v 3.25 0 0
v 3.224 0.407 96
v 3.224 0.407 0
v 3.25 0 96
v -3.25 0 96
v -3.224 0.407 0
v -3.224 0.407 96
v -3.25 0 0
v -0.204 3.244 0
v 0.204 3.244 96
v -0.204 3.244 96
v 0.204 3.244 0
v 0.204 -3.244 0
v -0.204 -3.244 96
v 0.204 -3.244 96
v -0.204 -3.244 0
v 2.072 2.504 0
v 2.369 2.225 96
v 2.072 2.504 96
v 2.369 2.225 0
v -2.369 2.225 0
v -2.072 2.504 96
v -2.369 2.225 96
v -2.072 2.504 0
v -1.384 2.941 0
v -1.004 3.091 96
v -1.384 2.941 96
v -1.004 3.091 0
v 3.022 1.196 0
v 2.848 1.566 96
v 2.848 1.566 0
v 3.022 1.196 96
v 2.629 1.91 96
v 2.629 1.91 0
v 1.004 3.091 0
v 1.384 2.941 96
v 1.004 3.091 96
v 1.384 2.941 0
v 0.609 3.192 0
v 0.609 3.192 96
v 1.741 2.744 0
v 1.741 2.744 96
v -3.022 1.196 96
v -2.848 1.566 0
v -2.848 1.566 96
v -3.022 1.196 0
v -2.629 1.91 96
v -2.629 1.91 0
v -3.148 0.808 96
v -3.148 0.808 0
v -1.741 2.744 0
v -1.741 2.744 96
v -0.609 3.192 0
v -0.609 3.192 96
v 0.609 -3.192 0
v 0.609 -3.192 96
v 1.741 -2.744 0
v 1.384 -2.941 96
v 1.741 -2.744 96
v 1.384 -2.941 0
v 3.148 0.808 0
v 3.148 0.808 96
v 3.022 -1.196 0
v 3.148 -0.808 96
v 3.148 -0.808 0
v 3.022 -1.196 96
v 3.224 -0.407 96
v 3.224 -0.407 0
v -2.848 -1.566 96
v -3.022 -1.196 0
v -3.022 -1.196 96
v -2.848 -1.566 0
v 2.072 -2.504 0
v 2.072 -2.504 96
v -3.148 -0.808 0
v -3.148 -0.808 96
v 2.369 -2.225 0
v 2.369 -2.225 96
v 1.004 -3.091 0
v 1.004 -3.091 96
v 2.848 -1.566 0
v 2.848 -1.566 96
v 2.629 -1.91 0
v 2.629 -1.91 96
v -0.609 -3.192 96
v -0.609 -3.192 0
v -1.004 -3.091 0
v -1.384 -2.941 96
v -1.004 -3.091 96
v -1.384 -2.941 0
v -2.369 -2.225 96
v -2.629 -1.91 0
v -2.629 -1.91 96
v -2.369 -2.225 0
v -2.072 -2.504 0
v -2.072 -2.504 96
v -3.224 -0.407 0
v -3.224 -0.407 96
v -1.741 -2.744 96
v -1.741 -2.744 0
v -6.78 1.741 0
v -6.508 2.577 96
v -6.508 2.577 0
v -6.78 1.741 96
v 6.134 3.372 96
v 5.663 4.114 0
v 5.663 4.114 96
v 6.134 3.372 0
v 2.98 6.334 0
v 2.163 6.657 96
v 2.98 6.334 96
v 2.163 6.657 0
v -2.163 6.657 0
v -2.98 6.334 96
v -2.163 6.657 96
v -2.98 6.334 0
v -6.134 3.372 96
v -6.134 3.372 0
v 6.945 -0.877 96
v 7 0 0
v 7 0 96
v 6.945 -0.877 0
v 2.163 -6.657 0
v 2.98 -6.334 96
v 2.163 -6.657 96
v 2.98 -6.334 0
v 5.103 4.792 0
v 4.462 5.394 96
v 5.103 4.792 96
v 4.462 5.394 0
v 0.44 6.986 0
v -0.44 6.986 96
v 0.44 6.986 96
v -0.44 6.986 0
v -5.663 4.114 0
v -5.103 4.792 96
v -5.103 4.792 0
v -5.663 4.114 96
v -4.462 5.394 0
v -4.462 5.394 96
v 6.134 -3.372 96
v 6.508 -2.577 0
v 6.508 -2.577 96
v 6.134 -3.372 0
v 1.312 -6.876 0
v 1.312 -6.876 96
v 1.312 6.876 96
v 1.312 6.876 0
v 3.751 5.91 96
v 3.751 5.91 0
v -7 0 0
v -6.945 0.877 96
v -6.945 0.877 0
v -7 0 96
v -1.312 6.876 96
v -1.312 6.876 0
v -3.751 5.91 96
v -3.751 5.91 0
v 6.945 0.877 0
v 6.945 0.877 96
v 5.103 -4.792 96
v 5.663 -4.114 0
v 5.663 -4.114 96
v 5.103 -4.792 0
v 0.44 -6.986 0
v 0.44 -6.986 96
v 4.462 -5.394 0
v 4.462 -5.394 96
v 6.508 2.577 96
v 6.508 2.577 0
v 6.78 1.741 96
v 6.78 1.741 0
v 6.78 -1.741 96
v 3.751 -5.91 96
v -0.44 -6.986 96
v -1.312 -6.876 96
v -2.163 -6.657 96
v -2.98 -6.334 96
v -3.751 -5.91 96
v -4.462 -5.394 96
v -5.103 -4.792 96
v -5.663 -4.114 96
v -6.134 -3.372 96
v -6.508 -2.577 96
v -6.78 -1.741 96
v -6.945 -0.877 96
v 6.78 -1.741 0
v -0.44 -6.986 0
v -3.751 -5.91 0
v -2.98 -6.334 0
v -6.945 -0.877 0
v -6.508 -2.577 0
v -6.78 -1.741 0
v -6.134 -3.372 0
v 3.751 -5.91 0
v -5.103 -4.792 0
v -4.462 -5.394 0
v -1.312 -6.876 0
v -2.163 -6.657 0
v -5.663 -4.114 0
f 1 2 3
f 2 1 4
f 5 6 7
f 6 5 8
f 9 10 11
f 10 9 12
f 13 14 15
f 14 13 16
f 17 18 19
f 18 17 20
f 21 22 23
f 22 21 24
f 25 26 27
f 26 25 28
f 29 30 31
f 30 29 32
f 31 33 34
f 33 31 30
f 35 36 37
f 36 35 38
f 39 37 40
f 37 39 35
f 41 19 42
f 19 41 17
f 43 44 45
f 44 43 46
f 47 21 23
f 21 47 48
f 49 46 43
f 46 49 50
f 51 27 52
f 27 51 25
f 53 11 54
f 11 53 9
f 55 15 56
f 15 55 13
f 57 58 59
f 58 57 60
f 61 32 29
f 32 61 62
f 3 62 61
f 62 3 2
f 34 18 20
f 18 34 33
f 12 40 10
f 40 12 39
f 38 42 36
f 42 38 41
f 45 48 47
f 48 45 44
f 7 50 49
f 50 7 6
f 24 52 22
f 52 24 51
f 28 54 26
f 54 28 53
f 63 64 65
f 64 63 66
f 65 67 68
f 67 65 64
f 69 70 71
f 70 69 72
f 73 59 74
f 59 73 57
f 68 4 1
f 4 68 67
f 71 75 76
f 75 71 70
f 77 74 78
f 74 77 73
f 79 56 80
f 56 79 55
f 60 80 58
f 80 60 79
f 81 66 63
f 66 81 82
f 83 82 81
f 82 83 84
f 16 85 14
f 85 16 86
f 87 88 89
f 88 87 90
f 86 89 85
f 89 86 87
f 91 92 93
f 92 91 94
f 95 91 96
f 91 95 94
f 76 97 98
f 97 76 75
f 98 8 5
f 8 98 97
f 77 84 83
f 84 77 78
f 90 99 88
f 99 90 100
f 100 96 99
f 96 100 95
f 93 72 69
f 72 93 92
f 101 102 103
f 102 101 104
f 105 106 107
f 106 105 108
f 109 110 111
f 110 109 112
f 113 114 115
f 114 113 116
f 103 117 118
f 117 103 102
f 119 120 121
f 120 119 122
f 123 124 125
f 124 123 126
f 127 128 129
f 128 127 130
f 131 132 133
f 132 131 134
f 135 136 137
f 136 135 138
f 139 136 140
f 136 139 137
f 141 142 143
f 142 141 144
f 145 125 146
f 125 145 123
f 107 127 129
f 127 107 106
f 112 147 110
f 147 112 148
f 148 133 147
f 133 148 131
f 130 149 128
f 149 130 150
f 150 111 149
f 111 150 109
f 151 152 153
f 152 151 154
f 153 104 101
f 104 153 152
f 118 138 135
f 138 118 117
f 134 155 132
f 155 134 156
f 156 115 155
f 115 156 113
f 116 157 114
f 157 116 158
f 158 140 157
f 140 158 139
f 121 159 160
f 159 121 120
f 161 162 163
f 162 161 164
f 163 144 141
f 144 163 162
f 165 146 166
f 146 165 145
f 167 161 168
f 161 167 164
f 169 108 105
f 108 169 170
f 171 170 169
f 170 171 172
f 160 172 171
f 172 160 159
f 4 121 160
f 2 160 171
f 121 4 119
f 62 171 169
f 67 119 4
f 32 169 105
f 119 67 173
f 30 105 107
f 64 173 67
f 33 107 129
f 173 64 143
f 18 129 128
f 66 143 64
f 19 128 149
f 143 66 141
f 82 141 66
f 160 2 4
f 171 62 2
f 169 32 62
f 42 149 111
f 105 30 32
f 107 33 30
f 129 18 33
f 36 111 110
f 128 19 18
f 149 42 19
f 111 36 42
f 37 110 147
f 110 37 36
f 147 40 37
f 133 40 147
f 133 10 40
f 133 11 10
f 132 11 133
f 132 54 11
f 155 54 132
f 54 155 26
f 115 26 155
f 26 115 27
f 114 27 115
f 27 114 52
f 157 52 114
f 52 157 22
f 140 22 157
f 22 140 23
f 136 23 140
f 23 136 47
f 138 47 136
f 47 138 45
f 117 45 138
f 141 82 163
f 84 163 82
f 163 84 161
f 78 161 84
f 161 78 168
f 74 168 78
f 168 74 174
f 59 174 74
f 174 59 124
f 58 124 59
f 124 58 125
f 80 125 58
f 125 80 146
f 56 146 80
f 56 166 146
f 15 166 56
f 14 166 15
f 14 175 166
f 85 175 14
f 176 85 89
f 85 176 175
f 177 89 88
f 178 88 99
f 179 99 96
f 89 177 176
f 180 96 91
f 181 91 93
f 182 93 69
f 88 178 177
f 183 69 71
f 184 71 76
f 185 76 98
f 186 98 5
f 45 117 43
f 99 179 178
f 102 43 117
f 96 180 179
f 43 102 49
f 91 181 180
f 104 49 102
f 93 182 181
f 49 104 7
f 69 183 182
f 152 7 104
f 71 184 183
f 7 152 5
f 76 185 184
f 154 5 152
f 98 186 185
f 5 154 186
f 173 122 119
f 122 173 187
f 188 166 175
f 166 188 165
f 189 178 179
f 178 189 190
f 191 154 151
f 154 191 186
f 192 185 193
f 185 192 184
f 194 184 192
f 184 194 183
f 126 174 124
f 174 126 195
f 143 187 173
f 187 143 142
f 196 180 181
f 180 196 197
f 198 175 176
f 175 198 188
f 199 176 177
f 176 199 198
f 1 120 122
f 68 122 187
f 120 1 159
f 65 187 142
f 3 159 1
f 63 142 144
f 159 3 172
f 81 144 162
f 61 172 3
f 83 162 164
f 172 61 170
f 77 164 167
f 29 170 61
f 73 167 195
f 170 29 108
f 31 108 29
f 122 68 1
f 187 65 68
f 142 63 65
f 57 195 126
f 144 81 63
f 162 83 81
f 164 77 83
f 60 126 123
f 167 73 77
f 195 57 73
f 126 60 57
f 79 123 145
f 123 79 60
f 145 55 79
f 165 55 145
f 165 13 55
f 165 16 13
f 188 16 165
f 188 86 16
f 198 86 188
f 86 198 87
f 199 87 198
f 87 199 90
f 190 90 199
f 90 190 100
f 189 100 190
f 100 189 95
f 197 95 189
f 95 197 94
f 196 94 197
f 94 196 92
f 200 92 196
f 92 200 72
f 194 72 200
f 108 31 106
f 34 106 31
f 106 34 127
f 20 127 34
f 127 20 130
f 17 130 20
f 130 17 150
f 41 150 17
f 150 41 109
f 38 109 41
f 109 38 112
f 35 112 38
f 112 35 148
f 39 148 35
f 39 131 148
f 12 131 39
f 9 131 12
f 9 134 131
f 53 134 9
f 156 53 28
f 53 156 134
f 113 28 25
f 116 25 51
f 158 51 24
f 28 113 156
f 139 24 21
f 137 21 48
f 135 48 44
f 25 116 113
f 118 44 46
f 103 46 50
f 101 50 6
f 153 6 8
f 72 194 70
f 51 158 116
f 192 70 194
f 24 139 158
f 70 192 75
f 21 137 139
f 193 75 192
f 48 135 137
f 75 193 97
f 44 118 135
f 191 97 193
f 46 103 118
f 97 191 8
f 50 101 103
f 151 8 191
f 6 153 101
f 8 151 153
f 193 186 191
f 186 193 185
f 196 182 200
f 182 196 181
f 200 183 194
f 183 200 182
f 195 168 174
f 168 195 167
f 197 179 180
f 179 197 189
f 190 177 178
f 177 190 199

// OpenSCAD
$fn = 50;


difference() {
	union() {
		cylinder(h = 96, r = 7.0000000000);
	}
	union() {
		translate(v = [0, 0, -100]) {
			cylinder(h = 200, r = 3.2500000000);
		}
	}
}
